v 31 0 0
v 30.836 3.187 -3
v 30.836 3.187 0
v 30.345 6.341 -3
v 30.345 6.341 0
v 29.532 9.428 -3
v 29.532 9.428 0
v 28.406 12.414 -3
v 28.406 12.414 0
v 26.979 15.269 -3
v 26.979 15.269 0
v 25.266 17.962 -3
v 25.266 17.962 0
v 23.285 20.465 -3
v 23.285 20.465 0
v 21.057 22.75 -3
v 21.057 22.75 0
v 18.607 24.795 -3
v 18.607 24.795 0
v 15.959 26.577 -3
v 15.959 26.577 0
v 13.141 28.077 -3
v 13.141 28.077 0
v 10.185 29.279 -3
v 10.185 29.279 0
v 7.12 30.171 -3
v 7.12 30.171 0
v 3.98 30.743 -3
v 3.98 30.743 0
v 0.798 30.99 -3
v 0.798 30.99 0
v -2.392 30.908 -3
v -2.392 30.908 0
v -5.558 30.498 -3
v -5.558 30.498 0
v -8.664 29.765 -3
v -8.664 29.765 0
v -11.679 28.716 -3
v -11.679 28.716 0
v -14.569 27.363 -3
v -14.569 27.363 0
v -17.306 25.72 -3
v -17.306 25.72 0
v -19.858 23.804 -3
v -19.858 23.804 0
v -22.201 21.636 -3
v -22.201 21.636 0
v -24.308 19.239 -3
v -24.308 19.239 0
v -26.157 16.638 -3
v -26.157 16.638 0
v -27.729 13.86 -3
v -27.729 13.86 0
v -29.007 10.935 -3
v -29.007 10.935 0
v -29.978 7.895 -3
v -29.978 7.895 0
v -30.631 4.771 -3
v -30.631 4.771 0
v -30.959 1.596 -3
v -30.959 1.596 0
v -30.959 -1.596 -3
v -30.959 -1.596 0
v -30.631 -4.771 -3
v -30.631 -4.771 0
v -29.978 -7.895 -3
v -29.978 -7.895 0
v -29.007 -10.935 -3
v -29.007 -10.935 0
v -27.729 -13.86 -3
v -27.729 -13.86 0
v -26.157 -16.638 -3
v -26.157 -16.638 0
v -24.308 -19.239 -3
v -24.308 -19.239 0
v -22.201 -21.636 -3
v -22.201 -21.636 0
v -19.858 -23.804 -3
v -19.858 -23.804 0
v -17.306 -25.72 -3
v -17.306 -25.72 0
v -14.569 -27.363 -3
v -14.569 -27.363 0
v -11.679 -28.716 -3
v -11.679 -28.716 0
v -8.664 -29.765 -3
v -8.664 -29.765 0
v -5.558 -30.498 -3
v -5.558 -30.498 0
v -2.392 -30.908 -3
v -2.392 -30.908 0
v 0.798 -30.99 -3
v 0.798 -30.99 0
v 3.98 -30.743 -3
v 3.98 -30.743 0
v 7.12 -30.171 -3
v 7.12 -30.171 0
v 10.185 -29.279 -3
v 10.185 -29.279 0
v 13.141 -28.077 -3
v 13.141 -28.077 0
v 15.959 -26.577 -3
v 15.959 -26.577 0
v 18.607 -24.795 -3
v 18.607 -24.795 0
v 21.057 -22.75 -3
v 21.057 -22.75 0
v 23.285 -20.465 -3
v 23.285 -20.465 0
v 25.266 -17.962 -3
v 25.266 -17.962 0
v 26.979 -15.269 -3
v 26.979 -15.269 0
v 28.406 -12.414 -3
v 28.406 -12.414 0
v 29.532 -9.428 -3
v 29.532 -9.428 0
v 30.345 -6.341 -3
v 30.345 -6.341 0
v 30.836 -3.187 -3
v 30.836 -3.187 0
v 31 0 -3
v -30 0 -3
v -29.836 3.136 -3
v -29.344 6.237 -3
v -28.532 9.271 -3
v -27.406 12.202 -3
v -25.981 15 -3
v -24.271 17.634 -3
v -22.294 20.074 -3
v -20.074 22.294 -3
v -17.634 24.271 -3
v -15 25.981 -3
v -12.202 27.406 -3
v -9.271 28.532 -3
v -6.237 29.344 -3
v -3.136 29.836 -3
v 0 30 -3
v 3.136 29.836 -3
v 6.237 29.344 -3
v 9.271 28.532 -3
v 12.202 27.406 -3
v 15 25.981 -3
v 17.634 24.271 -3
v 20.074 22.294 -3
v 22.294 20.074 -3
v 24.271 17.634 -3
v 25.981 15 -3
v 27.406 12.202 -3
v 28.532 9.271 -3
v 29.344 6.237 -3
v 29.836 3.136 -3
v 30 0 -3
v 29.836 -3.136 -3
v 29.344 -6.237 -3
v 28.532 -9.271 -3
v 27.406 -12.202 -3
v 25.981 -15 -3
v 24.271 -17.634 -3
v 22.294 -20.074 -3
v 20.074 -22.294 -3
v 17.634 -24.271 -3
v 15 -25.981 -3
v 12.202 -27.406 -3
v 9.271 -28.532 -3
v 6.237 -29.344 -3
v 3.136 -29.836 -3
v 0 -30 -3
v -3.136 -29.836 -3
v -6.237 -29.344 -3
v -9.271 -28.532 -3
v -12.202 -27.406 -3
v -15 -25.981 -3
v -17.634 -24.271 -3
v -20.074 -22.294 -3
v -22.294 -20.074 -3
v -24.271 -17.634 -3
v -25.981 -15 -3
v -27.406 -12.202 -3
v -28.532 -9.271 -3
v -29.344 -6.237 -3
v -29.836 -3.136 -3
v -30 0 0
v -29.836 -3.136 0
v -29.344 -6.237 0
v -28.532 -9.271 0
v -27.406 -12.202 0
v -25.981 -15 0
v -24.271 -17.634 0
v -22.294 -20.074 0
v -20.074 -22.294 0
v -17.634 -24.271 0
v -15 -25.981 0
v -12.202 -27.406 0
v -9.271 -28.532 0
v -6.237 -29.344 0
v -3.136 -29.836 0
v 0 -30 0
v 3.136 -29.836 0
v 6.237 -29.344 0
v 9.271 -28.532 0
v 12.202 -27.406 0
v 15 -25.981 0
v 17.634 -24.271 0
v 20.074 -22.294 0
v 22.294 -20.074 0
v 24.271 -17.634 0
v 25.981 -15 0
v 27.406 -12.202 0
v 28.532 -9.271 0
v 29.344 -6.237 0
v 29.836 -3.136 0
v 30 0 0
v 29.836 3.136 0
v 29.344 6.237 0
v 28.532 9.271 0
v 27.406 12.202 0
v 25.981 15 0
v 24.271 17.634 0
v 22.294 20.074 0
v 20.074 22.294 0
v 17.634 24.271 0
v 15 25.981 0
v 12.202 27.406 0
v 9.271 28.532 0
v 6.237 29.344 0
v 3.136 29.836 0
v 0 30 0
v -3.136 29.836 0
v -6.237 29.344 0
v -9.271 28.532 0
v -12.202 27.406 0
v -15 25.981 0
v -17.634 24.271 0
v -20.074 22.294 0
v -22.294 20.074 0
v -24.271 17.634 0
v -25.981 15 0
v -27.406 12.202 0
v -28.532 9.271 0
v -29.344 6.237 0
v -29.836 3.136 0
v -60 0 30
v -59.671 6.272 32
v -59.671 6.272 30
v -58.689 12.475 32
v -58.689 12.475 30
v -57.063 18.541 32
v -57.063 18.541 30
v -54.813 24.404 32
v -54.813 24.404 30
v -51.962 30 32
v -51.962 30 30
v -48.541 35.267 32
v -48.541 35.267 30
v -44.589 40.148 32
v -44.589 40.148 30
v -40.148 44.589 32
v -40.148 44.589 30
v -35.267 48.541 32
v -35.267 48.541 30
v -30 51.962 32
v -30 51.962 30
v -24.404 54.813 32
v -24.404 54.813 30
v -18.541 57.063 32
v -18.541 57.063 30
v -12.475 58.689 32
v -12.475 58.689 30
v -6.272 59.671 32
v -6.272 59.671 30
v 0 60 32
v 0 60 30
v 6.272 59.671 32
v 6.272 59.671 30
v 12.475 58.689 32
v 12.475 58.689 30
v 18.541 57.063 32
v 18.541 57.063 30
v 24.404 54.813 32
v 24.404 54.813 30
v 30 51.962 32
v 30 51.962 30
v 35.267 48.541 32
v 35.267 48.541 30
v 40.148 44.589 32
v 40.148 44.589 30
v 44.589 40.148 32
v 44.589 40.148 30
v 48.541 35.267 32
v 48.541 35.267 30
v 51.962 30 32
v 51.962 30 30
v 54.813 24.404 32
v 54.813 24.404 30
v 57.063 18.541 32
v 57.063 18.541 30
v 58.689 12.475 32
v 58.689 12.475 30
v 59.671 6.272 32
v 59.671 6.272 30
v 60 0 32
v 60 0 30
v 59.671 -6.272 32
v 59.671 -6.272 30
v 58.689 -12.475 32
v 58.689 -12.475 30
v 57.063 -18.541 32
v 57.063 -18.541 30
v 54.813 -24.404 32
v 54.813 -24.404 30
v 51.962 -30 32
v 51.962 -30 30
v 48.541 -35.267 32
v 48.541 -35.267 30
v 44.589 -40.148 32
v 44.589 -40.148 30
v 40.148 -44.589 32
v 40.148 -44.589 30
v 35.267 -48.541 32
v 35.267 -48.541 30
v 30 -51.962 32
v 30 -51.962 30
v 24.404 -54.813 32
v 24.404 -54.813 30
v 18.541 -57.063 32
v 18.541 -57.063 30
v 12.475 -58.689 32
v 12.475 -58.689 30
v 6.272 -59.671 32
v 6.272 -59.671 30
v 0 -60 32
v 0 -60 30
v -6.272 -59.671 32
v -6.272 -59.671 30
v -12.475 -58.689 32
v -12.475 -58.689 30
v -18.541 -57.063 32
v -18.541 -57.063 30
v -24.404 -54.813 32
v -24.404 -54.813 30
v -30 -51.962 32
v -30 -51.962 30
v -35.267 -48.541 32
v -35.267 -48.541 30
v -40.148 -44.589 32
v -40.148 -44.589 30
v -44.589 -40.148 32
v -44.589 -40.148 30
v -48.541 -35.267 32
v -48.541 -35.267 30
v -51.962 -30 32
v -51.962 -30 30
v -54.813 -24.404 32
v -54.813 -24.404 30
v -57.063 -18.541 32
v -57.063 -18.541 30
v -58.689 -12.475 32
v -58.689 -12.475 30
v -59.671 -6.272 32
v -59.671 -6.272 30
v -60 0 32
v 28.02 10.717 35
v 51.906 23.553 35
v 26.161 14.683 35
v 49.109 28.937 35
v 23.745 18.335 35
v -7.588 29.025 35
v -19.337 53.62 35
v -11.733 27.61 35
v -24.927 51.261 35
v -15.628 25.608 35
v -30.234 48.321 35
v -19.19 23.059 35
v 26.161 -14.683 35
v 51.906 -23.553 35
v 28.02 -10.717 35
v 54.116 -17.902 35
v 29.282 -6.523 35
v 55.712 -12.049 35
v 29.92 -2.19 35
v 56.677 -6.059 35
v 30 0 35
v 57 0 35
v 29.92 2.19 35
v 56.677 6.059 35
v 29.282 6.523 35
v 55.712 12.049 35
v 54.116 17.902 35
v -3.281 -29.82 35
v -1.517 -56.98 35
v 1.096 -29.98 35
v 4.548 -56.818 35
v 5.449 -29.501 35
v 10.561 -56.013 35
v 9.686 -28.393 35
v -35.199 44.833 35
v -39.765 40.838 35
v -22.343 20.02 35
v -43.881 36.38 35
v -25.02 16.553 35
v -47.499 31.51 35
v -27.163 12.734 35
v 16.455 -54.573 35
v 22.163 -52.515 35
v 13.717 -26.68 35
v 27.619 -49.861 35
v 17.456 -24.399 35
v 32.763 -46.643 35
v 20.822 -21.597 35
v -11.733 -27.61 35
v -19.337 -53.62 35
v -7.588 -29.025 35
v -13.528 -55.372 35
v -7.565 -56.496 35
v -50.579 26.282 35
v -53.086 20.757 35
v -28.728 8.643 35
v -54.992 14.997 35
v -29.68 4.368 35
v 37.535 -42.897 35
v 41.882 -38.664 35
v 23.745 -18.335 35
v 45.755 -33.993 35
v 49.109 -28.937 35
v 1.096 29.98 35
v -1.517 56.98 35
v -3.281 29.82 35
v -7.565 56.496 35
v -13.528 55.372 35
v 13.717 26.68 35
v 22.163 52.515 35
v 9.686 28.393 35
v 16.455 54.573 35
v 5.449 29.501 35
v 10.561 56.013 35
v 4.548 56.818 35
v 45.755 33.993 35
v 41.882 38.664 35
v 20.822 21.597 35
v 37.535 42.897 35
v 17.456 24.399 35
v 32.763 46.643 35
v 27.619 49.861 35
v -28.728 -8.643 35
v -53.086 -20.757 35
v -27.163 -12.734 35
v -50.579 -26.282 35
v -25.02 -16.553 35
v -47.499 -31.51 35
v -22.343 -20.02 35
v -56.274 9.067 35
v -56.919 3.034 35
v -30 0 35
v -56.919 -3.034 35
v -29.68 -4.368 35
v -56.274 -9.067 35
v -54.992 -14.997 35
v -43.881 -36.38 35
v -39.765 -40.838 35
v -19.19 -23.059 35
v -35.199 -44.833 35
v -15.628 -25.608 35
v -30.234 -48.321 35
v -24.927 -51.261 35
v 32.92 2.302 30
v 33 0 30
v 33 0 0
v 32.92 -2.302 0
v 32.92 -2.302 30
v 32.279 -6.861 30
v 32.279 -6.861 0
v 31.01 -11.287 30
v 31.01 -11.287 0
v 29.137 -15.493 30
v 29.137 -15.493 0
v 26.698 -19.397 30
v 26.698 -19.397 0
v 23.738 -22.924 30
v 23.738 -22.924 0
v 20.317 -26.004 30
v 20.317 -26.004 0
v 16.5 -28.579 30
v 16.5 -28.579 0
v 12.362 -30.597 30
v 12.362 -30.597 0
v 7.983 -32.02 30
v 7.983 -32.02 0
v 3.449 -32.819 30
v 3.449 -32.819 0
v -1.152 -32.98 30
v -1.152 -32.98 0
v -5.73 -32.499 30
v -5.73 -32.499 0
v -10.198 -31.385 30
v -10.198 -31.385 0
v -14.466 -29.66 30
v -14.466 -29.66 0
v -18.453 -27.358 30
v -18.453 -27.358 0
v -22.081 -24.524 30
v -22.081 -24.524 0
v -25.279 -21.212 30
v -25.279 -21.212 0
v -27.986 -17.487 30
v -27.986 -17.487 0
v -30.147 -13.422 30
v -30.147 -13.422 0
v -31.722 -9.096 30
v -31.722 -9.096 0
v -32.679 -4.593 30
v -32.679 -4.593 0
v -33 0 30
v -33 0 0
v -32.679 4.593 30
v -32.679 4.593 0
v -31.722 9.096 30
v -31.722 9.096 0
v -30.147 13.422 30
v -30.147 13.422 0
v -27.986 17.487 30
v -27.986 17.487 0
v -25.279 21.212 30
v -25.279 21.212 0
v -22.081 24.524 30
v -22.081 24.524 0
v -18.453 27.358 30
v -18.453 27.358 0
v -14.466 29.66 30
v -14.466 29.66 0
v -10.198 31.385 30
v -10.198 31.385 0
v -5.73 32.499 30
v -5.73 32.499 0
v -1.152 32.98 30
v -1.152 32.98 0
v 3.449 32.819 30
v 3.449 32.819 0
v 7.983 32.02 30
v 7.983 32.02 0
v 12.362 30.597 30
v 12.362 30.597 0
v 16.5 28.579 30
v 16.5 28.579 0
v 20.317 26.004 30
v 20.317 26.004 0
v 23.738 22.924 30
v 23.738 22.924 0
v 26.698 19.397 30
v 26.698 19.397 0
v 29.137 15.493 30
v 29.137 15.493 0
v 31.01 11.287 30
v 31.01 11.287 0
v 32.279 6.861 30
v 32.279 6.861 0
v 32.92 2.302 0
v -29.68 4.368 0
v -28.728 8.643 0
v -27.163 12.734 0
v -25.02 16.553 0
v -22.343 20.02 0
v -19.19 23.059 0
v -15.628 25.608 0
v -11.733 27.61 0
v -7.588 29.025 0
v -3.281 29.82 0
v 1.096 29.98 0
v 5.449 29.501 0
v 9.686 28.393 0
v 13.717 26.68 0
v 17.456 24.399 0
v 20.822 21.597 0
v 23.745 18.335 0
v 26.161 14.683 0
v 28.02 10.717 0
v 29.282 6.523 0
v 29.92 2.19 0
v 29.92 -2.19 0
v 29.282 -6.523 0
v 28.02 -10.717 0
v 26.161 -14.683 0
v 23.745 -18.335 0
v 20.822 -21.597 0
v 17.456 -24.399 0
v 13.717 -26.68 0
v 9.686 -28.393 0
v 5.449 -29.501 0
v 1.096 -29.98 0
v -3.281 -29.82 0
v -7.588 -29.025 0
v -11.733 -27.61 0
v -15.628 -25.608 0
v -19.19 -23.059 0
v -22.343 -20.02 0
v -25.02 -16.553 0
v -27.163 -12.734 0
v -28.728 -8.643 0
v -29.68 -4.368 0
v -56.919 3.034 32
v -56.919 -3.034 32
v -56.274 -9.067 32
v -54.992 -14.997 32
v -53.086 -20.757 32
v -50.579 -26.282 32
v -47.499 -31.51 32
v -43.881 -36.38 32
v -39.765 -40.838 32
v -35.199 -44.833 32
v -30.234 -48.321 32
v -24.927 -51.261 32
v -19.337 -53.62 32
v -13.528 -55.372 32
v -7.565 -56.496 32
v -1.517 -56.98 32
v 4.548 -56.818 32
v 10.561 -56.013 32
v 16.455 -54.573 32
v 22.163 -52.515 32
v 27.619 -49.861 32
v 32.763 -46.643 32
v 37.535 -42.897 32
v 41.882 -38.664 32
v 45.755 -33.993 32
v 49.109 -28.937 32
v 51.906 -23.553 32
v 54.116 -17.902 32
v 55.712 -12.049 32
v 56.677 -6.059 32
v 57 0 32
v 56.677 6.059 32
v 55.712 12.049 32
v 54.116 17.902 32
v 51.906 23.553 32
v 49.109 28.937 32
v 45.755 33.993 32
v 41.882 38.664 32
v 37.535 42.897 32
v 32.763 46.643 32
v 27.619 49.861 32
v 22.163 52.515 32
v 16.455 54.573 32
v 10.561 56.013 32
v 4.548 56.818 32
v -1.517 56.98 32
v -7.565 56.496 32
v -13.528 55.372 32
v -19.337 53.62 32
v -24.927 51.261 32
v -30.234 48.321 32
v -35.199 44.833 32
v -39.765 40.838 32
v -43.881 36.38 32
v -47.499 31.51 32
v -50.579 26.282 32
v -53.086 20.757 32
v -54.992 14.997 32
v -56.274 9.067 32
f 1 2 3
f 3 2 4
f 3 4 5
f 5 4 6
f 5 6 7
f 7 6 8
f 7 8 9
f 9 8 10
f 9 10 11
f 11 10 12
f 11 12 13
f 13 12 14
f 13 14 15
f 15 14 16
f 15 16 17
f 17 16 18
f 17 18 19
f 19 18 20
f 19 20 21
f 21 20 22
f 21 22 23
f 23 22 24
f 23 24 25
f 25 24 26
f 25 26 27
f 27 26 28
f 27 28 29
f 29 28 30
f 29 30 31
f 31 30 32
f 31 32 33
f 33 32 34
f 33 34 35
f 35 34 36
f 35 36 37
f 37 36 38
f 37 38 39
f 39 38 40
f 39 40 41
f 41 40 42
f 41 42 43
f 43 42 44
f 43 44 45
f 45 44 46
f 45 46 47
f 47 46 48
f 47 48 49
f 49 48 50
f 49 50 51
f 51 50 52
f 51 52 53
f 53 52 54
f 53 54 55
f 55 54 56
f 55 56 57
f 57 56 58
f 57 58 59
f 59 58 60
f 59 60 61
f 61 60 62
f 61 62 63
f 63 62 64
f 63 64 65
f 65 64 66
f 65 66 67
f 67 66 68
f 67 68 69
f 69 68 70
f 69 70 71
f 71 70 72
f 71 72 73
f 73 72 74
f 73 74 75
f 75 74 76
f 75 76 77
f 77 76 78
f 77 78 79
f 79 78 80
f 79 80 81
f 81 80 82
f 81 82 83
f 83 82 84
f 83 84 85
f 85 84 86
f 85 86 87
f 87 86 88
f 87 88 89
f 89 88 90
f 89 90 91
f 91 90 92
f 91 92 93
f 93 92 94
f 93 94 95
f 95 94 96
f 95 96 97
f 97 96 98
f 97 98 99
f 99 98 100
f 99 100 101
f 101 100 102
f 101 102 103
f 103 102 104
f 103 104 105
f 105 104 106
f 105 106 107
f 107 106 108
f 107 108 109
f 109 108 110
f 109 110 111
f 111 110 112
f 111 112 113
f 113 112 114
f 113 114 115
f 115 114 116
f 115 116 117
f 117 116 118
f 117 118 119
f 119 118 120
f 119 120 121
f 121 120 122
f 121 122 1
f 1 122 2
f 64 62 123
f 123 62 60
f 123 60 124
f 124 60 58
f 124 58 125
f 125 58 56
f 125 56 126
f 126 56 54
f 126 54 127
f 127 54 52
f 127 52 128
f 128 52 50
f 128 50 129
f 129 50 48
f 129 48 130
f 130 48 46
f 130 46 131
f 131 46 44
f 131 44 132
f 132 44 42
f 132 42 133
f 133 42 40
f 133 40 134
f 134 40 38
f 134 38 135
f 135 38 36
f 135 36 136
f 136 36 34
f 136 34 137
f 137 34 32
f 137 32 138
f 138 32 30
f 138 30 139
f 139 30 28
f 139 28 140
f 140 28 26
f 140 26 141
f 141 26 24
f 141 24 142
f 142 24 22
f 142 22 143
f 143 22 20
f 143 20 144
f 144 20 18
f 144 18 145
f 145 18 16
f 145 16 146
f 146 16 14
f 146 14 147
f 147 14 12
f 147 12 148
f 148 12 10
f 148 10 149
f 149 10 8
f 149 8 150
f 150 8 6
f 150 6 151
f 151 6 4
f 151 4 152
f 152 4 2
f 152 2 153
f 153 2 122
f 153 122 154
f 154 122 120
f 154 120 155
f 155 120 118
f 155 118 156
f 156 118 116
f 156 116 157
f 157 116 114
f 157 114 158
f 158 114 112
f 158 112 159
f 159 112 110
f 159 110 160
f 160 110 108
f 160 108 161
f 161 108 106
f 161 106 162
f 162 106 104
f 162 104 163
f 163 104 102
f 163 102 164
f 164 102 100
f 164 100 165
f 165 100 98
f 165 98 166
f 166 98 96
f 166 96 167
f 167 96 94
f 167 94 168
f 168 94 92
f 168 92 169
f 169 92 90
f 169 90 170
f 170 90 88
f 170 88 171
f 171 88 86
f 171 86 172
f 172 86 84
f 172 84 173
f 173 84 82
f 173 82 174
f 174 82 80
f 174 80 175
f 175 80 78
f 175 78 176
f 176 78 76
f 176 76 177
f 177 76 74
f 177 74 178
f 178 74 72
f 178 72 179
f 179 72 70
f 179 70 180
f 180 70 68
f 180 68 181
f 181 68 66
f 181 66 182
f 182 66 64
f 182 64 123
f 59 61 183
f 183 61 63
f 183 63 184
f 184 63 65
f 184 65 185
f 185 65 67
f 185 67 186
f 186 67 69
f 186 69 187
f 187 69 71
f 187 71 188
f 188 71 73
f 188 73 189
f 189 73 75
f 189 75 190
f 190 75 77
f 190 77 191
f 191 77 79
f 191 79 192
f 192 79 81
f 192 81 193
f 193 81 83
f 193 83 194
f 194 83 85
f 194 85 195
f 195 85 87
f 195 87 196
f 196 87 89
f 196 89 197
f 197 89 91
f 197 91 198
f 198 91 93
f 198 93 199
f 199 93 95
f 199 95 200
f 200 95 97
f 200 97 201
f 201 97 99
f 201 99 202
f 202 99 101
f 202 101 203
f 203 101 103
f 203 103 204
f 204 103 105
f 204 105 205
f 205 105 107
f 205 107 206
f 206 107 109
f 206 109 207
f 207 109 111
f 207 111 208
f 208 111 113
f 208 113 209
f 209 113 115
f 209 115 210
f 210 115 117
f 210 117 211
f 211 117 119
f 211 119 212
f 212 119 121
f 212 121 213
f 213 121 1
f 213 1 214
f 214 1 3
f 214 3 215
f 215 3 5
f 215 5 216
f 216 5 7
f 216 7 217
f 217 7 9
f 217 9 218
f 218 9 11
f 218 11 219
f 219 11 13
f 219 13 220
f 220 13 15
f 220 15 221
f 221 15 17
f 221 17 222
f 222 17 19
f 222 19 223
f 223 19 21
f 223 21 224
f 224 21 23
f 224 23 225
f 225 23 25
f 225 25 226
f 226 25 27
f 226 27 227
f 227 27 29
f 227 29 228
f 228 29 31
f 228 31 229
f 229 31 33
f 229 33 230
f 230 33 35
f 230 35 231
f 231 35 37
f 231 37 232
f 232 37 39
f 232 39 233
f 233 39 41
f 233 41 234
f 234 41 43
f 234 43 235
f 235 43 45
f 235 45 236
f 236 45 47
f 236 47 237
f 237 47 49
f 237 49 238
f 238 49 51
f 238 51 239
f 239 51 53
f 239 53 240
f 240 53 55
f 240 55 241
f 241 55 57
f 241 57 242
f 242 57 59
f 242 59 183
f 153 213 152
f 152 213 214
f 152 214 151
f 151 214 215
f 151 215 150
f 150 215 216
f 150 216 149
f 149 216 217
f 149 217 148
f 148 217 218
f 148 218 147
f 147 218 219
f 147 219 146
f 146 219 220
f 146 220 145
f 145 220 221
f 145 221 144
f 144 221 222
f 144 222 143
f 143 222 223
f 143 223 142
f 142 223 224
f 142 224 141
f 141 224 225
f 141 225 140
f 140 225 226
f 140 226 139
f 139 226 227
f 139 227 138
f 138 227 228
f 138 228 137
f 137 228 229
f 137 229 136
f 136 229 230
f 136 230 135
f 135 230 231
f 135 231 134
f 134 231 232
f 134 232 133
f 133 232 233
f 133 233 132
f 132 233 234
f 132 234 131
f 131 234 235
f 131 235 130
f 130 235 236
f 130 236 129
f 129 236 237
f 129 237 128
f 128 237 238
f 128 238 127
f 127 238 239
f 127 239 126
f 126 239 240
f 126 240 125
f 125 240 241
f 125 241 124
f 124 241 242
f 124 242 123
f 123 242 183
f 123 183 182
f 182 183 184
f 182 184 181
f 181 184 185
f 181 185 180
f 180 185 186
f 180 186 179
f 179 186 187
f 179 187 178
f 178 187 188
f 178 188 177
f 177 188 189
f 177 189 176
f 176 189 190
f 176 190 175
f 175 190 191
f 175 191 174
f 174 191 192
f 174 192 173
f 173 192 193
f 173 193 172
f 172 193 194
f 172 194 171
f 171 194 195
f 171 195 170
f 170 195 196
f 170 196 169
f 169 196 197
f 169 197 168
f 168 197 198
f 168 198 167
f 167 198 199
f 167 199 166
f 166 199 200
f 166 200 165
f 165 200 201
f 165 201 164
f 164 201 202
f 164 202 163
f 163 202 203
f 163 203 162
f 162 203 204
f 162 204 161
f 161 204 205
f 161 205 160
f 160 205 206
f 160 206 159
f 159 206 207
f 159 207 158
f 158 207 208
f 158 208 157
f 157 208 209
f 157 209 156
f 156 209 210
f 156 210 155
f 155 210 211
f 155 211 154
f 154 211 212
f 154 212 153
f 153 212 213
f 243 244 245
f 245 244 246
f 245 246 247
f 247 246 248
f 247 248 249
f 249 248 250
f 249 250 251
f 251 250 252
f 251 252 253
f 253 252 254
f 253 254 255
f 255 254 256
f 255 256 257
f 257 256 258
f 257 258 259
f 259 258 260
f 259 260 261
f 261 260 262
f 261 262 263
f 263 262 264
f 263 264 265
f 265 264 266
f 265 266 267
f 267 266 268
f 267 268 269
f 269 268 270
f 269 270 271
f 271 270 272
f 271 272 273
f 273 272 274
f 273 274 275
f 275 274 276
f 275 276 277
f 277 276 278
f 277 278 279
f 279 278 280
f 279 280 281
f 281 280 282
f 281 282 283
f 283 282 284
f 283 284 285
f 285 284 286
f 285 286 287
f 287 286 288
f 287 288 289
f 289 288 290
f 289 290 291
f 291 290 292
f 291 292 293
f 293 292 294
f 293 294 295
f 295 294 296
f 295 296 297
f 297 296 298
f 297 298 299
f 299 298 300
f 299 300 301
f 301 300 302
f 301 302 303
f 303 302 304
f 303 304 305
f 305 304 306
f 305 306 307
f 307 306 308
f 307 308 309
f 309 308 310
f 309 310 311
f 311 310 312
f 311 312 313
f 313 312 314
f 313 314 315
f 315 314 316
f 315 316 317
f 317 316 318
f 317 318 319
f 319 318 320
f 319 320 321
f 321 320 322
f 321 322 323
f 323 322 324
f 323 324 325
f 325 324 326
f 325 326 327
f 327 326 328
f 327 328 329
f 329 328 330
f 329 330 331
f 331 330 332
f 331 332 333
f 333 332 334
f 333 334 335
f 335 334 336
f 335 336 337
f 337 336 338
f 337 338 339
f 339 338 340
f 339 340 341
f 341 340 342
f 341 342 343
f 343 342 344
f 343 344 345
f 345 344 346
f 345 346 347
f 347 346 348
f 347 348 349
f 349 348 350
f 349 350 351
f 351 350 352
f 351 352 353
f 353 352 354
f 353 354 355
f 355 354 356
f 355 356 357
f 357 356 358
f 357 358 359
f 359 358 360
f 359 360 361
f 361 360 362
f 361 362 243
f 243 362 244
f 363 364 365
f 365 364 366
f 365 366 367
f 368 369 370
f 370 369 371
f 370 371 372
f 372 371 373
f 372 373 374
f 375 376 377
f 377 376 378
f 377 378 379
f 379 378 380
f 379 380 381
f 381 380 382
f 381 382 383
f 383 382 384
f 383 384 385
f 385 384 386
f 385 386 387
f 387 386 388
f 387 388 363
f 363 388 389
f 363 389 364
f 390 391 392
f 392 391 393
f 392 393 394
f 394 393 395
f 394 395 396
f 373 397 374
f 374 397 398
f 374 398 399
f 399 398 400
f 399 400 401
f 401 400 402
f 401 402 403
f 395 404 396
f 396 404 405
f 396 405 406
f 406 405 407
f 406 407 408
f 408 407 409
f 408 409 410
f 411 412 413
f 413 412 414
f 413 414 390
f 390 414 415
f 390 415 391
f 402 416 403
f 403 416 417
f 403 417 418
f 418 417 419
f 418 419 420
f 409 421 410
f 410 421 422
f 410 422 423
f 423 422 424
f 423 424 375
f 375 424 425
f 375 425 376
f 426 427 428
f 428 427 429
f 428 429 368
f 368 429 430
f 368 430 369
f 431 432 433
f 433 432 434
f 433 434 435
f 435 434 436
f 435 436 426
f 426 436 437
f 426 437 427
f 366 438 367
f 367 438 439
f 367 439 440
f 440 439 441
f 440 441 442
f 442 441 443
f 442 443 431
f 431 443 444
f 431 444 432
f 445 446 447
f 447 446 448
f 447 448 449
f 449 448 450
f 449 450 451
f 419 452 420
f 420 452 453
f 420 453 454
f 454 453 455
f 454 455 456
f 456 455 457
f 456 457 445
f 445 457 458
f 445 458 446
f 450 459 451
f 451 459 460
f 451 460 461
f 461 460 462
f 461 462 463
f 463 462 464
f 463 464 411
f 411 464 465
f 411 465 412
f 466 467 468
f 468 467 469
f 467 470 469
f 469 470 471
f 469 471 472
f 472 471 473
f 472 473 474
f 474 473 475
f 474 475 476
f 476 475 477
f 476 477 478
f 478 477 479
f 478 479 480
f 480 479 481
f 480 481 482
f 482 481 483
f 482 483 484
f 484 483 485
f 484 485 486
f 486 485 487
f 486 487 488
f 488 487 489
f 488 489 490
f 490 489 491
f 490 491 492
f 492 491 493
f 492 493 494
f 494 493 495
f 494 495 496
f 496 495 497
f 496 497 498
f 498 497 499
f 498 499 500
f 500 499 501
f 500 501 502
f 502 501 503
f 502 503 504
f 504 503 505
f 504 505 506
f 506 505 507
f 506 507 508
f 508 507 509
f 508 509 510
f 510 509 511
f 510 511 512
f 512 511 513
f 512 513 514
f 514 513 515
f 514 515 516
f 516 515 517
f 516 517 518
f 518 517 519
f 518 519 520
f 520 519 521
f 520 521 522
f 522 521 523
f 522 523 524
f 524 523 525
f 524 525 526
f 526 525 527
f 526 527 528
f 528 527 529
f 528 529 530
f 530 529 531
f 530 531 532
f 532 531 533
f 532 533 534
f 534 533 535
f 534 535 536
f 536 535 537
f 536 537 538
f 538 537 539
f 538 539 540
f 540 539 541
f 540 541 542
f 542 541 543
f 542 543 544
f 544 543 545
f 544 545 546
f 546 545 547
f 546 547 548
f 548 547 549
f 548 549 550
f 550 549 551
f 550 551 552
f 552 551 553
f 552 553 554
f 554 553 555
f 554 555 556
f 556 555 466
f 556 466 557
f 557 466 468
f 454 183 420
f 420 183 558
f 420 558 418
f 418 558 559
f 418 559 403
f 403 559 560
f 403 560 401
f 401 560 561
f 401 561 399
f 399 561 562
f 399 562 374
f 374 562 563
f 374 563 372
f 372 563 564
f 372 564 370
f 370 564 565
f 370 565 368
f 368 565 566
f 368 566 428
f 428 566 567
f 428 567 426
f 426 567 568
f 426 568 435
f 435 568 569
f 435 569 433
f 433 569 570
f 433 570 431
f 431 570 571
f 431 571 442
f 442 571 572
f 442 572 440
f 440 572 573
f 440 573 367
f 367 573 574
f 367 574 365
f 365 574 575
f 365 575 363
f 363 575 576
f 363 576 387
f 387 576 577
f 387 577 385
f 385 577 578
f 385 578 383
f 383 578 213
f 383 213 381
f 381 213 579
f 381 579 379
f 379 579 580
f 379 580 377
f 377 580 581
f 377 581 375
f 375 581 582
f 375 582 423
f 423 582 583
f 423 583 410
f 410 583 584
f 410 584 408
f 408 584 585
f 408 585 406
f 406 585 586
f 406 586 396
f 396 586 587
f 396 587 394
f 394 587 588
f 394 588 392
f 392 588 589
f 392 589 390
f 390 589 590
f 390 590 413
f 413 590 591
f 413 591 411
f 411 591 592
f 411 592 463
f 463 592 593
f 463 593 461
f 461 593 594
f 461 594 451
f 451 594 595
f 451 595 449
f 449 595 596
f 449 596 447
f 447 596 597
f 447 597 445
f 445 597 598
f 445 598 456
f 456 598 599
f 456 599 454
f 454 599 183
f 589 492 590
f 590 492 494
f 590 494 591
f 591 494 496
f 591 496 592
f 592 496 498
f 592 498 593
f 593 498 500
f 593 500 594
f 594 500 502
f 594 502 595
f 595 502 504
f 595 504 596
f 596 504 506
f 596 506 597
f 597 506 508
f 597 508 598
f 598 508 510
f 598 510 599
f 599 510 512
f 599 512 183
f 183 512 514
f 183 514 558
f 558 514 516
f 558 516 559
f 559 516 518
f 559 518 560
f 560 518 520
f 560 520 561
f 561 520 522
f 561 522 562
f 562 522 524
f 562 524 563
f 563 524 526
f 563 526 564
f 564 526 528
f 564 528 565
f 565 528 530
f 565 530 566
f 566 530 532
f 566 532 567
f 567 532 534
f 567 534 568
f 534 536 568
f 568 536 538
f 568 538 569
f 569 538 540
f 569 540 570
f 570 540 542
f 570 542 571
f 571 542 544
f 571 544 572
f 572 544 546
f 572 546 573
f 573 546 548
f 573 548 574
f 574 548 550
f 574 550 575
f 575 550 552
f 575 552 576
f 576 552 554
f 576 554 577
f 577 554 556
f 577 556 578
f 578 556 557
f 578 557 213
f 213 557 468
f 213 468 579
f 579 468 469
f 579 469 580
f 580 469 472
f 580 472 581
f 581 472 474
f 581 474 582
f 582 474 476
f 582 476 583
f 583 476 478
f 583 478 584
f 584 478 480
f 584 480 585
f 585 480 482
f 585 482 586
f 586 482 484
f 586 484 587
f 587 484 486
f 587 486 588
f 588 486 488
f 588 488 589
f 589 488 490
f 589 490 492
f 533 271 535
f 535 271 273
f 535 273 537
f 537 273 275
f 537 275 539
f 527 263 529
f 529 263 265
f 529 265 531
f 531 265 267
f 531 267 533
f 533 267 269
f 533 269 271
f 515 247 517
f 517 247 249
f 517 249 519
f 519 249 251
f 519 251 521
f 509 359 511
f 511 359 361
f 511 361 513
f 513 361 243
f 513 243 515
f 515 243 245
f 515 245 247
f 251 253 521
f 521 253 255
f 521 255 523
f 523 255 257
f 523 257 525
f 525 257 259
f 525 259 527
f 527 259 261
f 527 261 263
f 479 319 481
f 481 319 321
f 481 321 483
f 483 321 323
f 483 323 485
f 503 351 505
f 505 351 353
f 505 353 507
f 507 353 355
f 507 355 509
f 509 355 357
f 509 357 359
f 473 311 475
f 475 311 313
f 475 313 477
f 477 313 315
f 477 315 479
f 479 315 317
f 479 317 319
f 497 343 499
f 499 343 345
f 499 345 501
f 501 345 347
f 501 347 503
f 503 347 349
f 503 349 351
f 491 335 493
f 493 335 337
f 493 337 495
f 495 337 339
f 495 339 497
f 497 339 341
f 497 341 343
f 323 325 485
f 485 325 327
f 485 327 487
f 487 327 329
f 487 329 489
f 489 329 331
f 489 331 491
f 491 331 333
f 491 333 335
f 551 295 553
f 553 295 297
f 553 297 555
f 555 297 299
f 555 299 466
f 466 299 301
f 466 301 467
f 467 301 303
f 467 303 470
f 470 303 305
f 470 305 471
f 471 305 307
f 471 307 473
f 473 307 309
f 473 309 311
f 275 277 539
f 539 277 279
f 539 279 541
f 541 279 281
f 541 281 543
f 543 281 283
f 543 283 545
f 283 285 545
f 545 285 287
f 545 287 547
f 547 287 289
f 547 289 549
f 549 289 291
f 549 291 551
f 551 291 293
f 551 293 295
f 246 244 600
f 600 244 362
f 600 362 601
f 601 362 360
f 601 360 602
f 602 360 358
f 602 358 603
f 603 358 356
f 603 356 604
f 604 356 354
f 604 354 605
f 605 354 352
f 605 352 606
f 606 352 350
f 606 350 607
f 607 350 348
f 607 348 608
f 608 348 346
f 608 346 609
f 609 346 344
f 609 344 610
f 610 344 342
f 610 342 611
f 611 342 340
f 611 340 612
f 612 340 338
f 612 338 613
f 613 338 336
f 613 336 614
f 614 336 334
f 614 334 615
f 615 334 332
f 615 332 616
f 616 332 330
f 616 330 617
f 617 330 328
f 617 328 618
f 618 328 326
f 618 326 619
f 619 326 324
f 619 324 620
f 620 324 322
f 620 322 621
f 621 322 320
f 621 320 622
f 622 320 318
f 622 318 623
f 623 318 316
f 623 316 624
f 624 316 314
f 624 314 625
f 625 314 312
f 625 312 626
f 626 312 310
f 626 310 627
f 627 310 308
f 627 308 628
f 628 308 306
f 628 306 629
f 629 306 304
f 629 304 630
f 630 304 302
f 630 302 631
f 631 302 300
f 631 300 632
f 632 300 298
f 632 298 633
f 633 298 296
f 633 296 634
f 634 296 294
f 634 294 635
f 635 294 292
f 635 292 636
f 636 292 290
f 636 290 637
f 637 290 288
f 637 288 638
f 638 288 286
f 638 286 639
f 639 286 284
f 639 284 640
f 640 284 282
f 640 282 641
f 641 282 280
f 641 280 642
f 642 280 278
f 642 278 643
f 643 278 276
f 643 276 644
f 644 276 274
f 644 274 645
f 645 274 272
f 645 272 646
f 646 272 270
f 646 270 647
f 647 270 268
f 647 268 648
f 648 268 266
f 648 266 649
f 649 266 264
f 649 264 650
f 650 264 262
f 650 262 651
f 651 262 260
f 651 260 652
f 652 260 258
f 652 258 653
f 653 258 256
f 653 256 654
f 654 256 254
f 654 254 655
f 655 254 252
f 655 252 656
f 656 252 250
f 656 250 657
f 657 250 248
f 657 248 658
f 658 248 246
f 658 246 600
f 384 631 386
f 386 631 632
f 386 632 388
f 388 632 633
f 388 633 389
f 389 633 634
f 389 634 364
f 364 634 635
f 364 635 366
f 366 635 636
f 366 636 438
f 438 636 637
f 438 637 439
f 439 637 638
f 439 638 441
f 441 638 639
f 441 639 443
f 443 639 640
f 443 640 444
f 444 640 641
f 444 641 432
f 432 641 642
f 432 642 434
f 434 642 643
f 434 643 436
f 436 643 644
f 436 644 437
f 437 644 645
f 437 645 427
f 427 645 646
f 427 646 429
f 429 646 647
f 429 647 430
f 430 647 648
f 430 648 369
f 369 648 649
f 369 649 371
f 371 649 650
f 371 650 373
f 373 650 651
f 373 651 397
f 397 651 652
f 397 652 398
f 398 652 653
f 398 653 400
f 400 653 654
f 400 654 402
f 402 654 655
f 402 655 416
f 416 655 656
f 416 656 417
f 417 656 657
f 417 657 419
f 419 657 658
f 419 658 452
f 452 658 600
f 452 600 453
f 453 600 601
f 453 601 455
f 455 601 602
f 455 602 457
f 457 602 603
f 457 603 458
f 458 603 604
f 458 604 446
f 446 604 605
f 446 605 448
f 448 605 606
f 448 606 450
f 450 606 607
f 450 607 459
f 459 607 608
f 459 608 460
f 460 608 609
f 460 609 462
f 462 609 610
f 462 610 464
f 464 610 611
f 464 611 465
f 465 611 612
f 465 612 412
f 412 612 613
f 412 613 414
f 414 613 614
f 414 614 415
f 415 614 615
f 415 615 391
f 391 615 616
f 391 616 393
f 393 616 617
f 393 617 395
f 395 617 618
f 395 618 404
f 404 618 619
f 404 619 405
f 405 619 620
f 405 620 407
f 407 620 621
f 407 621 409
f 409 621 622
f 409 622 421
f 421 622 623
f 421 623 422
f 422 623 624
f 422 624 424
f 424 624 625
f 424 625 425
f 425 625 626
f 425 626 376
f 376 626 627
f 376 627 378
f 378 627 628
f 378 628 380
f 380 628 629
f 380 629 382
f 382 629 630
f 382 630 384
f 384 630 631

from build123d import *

# Parameters (mm, degrees)
SKETCH_1_R          = 31
SKETCH_1_R_2        = 30
EXTRUDE_1_DEPTH     = 3
SKETCH_2_R          = 33
SKETCH_2_R_2        = 30
EXTRUDE_3_DEPTH     = 30
EXTRUDE_START       = 5
SKETCH_4_R          = 60
SKETCH_4_R_2        = 33
SKETCH_4_R_3        = 30
EXTRUDE_4_DEPTH     = 5
SKETCH_5_R          = 60
SKETCH_5_R_2        = 57
CUT_EXTRUDE_1_DEPTH = 3


with BuildPart() as part:
    # 스케치1 → 보스-돌출1 (new body)
    with BuildSketch(Plane.XY):
        Circle(SKETCH_1_R)
        Circle(SKETCH_1_R_2, mode=Mode.SUBTRACT)
    extrude(amount=-EXTRUDE_1_DEPTH)


with BuildPart() as body_2:
    # 스케치2 → 보스-돌출3 (new body)
    with BuildSketch(Plane.XY):
        Circle(SKETCH_2_R)
        Circle(SKETCH_2_R_2, mode=Mode.SUBTRACT)
    extrude(amount=EXTRUDE_3_DEPTH)

    # 스케치4 → 보스-돌출4 (add)
    # profile 1 of 2: a face of its own
    with BuildSketch(Plane.XY.offset(30).offset(EXTRUDE_START)):
        Circle(SKETCH_4_R)
        Circle(SKETCH_4_R_2, mode=Mode.SUBTRACT)
    # profile 2 of 2: a face of its own
    with BuildSketch(Plane.XY.offset(30).offset(EXTRUDE_START)):
        Circle(SKETCH_4_R_2)
        Circle(SKETCH_4_R_3, mode=Mode.SUBTRACT)
    extrude(amount=-EXTRUDE_4_DEPTH)

    # 스케치5 → 컷-돌출1 (cut)
    with BuildSketch(Plane.XY.offset(35)):
        Circle(SKETCH_5_R)
        Circle(SKETCH_5_R_2, mode=Mode.SUBTRACT)
    extrude(amount=-CUT_EXTRUDE_1_DEPTH, mode=Mode.SUBTRACT)


solid = Compound([part.part, body_2.part])
